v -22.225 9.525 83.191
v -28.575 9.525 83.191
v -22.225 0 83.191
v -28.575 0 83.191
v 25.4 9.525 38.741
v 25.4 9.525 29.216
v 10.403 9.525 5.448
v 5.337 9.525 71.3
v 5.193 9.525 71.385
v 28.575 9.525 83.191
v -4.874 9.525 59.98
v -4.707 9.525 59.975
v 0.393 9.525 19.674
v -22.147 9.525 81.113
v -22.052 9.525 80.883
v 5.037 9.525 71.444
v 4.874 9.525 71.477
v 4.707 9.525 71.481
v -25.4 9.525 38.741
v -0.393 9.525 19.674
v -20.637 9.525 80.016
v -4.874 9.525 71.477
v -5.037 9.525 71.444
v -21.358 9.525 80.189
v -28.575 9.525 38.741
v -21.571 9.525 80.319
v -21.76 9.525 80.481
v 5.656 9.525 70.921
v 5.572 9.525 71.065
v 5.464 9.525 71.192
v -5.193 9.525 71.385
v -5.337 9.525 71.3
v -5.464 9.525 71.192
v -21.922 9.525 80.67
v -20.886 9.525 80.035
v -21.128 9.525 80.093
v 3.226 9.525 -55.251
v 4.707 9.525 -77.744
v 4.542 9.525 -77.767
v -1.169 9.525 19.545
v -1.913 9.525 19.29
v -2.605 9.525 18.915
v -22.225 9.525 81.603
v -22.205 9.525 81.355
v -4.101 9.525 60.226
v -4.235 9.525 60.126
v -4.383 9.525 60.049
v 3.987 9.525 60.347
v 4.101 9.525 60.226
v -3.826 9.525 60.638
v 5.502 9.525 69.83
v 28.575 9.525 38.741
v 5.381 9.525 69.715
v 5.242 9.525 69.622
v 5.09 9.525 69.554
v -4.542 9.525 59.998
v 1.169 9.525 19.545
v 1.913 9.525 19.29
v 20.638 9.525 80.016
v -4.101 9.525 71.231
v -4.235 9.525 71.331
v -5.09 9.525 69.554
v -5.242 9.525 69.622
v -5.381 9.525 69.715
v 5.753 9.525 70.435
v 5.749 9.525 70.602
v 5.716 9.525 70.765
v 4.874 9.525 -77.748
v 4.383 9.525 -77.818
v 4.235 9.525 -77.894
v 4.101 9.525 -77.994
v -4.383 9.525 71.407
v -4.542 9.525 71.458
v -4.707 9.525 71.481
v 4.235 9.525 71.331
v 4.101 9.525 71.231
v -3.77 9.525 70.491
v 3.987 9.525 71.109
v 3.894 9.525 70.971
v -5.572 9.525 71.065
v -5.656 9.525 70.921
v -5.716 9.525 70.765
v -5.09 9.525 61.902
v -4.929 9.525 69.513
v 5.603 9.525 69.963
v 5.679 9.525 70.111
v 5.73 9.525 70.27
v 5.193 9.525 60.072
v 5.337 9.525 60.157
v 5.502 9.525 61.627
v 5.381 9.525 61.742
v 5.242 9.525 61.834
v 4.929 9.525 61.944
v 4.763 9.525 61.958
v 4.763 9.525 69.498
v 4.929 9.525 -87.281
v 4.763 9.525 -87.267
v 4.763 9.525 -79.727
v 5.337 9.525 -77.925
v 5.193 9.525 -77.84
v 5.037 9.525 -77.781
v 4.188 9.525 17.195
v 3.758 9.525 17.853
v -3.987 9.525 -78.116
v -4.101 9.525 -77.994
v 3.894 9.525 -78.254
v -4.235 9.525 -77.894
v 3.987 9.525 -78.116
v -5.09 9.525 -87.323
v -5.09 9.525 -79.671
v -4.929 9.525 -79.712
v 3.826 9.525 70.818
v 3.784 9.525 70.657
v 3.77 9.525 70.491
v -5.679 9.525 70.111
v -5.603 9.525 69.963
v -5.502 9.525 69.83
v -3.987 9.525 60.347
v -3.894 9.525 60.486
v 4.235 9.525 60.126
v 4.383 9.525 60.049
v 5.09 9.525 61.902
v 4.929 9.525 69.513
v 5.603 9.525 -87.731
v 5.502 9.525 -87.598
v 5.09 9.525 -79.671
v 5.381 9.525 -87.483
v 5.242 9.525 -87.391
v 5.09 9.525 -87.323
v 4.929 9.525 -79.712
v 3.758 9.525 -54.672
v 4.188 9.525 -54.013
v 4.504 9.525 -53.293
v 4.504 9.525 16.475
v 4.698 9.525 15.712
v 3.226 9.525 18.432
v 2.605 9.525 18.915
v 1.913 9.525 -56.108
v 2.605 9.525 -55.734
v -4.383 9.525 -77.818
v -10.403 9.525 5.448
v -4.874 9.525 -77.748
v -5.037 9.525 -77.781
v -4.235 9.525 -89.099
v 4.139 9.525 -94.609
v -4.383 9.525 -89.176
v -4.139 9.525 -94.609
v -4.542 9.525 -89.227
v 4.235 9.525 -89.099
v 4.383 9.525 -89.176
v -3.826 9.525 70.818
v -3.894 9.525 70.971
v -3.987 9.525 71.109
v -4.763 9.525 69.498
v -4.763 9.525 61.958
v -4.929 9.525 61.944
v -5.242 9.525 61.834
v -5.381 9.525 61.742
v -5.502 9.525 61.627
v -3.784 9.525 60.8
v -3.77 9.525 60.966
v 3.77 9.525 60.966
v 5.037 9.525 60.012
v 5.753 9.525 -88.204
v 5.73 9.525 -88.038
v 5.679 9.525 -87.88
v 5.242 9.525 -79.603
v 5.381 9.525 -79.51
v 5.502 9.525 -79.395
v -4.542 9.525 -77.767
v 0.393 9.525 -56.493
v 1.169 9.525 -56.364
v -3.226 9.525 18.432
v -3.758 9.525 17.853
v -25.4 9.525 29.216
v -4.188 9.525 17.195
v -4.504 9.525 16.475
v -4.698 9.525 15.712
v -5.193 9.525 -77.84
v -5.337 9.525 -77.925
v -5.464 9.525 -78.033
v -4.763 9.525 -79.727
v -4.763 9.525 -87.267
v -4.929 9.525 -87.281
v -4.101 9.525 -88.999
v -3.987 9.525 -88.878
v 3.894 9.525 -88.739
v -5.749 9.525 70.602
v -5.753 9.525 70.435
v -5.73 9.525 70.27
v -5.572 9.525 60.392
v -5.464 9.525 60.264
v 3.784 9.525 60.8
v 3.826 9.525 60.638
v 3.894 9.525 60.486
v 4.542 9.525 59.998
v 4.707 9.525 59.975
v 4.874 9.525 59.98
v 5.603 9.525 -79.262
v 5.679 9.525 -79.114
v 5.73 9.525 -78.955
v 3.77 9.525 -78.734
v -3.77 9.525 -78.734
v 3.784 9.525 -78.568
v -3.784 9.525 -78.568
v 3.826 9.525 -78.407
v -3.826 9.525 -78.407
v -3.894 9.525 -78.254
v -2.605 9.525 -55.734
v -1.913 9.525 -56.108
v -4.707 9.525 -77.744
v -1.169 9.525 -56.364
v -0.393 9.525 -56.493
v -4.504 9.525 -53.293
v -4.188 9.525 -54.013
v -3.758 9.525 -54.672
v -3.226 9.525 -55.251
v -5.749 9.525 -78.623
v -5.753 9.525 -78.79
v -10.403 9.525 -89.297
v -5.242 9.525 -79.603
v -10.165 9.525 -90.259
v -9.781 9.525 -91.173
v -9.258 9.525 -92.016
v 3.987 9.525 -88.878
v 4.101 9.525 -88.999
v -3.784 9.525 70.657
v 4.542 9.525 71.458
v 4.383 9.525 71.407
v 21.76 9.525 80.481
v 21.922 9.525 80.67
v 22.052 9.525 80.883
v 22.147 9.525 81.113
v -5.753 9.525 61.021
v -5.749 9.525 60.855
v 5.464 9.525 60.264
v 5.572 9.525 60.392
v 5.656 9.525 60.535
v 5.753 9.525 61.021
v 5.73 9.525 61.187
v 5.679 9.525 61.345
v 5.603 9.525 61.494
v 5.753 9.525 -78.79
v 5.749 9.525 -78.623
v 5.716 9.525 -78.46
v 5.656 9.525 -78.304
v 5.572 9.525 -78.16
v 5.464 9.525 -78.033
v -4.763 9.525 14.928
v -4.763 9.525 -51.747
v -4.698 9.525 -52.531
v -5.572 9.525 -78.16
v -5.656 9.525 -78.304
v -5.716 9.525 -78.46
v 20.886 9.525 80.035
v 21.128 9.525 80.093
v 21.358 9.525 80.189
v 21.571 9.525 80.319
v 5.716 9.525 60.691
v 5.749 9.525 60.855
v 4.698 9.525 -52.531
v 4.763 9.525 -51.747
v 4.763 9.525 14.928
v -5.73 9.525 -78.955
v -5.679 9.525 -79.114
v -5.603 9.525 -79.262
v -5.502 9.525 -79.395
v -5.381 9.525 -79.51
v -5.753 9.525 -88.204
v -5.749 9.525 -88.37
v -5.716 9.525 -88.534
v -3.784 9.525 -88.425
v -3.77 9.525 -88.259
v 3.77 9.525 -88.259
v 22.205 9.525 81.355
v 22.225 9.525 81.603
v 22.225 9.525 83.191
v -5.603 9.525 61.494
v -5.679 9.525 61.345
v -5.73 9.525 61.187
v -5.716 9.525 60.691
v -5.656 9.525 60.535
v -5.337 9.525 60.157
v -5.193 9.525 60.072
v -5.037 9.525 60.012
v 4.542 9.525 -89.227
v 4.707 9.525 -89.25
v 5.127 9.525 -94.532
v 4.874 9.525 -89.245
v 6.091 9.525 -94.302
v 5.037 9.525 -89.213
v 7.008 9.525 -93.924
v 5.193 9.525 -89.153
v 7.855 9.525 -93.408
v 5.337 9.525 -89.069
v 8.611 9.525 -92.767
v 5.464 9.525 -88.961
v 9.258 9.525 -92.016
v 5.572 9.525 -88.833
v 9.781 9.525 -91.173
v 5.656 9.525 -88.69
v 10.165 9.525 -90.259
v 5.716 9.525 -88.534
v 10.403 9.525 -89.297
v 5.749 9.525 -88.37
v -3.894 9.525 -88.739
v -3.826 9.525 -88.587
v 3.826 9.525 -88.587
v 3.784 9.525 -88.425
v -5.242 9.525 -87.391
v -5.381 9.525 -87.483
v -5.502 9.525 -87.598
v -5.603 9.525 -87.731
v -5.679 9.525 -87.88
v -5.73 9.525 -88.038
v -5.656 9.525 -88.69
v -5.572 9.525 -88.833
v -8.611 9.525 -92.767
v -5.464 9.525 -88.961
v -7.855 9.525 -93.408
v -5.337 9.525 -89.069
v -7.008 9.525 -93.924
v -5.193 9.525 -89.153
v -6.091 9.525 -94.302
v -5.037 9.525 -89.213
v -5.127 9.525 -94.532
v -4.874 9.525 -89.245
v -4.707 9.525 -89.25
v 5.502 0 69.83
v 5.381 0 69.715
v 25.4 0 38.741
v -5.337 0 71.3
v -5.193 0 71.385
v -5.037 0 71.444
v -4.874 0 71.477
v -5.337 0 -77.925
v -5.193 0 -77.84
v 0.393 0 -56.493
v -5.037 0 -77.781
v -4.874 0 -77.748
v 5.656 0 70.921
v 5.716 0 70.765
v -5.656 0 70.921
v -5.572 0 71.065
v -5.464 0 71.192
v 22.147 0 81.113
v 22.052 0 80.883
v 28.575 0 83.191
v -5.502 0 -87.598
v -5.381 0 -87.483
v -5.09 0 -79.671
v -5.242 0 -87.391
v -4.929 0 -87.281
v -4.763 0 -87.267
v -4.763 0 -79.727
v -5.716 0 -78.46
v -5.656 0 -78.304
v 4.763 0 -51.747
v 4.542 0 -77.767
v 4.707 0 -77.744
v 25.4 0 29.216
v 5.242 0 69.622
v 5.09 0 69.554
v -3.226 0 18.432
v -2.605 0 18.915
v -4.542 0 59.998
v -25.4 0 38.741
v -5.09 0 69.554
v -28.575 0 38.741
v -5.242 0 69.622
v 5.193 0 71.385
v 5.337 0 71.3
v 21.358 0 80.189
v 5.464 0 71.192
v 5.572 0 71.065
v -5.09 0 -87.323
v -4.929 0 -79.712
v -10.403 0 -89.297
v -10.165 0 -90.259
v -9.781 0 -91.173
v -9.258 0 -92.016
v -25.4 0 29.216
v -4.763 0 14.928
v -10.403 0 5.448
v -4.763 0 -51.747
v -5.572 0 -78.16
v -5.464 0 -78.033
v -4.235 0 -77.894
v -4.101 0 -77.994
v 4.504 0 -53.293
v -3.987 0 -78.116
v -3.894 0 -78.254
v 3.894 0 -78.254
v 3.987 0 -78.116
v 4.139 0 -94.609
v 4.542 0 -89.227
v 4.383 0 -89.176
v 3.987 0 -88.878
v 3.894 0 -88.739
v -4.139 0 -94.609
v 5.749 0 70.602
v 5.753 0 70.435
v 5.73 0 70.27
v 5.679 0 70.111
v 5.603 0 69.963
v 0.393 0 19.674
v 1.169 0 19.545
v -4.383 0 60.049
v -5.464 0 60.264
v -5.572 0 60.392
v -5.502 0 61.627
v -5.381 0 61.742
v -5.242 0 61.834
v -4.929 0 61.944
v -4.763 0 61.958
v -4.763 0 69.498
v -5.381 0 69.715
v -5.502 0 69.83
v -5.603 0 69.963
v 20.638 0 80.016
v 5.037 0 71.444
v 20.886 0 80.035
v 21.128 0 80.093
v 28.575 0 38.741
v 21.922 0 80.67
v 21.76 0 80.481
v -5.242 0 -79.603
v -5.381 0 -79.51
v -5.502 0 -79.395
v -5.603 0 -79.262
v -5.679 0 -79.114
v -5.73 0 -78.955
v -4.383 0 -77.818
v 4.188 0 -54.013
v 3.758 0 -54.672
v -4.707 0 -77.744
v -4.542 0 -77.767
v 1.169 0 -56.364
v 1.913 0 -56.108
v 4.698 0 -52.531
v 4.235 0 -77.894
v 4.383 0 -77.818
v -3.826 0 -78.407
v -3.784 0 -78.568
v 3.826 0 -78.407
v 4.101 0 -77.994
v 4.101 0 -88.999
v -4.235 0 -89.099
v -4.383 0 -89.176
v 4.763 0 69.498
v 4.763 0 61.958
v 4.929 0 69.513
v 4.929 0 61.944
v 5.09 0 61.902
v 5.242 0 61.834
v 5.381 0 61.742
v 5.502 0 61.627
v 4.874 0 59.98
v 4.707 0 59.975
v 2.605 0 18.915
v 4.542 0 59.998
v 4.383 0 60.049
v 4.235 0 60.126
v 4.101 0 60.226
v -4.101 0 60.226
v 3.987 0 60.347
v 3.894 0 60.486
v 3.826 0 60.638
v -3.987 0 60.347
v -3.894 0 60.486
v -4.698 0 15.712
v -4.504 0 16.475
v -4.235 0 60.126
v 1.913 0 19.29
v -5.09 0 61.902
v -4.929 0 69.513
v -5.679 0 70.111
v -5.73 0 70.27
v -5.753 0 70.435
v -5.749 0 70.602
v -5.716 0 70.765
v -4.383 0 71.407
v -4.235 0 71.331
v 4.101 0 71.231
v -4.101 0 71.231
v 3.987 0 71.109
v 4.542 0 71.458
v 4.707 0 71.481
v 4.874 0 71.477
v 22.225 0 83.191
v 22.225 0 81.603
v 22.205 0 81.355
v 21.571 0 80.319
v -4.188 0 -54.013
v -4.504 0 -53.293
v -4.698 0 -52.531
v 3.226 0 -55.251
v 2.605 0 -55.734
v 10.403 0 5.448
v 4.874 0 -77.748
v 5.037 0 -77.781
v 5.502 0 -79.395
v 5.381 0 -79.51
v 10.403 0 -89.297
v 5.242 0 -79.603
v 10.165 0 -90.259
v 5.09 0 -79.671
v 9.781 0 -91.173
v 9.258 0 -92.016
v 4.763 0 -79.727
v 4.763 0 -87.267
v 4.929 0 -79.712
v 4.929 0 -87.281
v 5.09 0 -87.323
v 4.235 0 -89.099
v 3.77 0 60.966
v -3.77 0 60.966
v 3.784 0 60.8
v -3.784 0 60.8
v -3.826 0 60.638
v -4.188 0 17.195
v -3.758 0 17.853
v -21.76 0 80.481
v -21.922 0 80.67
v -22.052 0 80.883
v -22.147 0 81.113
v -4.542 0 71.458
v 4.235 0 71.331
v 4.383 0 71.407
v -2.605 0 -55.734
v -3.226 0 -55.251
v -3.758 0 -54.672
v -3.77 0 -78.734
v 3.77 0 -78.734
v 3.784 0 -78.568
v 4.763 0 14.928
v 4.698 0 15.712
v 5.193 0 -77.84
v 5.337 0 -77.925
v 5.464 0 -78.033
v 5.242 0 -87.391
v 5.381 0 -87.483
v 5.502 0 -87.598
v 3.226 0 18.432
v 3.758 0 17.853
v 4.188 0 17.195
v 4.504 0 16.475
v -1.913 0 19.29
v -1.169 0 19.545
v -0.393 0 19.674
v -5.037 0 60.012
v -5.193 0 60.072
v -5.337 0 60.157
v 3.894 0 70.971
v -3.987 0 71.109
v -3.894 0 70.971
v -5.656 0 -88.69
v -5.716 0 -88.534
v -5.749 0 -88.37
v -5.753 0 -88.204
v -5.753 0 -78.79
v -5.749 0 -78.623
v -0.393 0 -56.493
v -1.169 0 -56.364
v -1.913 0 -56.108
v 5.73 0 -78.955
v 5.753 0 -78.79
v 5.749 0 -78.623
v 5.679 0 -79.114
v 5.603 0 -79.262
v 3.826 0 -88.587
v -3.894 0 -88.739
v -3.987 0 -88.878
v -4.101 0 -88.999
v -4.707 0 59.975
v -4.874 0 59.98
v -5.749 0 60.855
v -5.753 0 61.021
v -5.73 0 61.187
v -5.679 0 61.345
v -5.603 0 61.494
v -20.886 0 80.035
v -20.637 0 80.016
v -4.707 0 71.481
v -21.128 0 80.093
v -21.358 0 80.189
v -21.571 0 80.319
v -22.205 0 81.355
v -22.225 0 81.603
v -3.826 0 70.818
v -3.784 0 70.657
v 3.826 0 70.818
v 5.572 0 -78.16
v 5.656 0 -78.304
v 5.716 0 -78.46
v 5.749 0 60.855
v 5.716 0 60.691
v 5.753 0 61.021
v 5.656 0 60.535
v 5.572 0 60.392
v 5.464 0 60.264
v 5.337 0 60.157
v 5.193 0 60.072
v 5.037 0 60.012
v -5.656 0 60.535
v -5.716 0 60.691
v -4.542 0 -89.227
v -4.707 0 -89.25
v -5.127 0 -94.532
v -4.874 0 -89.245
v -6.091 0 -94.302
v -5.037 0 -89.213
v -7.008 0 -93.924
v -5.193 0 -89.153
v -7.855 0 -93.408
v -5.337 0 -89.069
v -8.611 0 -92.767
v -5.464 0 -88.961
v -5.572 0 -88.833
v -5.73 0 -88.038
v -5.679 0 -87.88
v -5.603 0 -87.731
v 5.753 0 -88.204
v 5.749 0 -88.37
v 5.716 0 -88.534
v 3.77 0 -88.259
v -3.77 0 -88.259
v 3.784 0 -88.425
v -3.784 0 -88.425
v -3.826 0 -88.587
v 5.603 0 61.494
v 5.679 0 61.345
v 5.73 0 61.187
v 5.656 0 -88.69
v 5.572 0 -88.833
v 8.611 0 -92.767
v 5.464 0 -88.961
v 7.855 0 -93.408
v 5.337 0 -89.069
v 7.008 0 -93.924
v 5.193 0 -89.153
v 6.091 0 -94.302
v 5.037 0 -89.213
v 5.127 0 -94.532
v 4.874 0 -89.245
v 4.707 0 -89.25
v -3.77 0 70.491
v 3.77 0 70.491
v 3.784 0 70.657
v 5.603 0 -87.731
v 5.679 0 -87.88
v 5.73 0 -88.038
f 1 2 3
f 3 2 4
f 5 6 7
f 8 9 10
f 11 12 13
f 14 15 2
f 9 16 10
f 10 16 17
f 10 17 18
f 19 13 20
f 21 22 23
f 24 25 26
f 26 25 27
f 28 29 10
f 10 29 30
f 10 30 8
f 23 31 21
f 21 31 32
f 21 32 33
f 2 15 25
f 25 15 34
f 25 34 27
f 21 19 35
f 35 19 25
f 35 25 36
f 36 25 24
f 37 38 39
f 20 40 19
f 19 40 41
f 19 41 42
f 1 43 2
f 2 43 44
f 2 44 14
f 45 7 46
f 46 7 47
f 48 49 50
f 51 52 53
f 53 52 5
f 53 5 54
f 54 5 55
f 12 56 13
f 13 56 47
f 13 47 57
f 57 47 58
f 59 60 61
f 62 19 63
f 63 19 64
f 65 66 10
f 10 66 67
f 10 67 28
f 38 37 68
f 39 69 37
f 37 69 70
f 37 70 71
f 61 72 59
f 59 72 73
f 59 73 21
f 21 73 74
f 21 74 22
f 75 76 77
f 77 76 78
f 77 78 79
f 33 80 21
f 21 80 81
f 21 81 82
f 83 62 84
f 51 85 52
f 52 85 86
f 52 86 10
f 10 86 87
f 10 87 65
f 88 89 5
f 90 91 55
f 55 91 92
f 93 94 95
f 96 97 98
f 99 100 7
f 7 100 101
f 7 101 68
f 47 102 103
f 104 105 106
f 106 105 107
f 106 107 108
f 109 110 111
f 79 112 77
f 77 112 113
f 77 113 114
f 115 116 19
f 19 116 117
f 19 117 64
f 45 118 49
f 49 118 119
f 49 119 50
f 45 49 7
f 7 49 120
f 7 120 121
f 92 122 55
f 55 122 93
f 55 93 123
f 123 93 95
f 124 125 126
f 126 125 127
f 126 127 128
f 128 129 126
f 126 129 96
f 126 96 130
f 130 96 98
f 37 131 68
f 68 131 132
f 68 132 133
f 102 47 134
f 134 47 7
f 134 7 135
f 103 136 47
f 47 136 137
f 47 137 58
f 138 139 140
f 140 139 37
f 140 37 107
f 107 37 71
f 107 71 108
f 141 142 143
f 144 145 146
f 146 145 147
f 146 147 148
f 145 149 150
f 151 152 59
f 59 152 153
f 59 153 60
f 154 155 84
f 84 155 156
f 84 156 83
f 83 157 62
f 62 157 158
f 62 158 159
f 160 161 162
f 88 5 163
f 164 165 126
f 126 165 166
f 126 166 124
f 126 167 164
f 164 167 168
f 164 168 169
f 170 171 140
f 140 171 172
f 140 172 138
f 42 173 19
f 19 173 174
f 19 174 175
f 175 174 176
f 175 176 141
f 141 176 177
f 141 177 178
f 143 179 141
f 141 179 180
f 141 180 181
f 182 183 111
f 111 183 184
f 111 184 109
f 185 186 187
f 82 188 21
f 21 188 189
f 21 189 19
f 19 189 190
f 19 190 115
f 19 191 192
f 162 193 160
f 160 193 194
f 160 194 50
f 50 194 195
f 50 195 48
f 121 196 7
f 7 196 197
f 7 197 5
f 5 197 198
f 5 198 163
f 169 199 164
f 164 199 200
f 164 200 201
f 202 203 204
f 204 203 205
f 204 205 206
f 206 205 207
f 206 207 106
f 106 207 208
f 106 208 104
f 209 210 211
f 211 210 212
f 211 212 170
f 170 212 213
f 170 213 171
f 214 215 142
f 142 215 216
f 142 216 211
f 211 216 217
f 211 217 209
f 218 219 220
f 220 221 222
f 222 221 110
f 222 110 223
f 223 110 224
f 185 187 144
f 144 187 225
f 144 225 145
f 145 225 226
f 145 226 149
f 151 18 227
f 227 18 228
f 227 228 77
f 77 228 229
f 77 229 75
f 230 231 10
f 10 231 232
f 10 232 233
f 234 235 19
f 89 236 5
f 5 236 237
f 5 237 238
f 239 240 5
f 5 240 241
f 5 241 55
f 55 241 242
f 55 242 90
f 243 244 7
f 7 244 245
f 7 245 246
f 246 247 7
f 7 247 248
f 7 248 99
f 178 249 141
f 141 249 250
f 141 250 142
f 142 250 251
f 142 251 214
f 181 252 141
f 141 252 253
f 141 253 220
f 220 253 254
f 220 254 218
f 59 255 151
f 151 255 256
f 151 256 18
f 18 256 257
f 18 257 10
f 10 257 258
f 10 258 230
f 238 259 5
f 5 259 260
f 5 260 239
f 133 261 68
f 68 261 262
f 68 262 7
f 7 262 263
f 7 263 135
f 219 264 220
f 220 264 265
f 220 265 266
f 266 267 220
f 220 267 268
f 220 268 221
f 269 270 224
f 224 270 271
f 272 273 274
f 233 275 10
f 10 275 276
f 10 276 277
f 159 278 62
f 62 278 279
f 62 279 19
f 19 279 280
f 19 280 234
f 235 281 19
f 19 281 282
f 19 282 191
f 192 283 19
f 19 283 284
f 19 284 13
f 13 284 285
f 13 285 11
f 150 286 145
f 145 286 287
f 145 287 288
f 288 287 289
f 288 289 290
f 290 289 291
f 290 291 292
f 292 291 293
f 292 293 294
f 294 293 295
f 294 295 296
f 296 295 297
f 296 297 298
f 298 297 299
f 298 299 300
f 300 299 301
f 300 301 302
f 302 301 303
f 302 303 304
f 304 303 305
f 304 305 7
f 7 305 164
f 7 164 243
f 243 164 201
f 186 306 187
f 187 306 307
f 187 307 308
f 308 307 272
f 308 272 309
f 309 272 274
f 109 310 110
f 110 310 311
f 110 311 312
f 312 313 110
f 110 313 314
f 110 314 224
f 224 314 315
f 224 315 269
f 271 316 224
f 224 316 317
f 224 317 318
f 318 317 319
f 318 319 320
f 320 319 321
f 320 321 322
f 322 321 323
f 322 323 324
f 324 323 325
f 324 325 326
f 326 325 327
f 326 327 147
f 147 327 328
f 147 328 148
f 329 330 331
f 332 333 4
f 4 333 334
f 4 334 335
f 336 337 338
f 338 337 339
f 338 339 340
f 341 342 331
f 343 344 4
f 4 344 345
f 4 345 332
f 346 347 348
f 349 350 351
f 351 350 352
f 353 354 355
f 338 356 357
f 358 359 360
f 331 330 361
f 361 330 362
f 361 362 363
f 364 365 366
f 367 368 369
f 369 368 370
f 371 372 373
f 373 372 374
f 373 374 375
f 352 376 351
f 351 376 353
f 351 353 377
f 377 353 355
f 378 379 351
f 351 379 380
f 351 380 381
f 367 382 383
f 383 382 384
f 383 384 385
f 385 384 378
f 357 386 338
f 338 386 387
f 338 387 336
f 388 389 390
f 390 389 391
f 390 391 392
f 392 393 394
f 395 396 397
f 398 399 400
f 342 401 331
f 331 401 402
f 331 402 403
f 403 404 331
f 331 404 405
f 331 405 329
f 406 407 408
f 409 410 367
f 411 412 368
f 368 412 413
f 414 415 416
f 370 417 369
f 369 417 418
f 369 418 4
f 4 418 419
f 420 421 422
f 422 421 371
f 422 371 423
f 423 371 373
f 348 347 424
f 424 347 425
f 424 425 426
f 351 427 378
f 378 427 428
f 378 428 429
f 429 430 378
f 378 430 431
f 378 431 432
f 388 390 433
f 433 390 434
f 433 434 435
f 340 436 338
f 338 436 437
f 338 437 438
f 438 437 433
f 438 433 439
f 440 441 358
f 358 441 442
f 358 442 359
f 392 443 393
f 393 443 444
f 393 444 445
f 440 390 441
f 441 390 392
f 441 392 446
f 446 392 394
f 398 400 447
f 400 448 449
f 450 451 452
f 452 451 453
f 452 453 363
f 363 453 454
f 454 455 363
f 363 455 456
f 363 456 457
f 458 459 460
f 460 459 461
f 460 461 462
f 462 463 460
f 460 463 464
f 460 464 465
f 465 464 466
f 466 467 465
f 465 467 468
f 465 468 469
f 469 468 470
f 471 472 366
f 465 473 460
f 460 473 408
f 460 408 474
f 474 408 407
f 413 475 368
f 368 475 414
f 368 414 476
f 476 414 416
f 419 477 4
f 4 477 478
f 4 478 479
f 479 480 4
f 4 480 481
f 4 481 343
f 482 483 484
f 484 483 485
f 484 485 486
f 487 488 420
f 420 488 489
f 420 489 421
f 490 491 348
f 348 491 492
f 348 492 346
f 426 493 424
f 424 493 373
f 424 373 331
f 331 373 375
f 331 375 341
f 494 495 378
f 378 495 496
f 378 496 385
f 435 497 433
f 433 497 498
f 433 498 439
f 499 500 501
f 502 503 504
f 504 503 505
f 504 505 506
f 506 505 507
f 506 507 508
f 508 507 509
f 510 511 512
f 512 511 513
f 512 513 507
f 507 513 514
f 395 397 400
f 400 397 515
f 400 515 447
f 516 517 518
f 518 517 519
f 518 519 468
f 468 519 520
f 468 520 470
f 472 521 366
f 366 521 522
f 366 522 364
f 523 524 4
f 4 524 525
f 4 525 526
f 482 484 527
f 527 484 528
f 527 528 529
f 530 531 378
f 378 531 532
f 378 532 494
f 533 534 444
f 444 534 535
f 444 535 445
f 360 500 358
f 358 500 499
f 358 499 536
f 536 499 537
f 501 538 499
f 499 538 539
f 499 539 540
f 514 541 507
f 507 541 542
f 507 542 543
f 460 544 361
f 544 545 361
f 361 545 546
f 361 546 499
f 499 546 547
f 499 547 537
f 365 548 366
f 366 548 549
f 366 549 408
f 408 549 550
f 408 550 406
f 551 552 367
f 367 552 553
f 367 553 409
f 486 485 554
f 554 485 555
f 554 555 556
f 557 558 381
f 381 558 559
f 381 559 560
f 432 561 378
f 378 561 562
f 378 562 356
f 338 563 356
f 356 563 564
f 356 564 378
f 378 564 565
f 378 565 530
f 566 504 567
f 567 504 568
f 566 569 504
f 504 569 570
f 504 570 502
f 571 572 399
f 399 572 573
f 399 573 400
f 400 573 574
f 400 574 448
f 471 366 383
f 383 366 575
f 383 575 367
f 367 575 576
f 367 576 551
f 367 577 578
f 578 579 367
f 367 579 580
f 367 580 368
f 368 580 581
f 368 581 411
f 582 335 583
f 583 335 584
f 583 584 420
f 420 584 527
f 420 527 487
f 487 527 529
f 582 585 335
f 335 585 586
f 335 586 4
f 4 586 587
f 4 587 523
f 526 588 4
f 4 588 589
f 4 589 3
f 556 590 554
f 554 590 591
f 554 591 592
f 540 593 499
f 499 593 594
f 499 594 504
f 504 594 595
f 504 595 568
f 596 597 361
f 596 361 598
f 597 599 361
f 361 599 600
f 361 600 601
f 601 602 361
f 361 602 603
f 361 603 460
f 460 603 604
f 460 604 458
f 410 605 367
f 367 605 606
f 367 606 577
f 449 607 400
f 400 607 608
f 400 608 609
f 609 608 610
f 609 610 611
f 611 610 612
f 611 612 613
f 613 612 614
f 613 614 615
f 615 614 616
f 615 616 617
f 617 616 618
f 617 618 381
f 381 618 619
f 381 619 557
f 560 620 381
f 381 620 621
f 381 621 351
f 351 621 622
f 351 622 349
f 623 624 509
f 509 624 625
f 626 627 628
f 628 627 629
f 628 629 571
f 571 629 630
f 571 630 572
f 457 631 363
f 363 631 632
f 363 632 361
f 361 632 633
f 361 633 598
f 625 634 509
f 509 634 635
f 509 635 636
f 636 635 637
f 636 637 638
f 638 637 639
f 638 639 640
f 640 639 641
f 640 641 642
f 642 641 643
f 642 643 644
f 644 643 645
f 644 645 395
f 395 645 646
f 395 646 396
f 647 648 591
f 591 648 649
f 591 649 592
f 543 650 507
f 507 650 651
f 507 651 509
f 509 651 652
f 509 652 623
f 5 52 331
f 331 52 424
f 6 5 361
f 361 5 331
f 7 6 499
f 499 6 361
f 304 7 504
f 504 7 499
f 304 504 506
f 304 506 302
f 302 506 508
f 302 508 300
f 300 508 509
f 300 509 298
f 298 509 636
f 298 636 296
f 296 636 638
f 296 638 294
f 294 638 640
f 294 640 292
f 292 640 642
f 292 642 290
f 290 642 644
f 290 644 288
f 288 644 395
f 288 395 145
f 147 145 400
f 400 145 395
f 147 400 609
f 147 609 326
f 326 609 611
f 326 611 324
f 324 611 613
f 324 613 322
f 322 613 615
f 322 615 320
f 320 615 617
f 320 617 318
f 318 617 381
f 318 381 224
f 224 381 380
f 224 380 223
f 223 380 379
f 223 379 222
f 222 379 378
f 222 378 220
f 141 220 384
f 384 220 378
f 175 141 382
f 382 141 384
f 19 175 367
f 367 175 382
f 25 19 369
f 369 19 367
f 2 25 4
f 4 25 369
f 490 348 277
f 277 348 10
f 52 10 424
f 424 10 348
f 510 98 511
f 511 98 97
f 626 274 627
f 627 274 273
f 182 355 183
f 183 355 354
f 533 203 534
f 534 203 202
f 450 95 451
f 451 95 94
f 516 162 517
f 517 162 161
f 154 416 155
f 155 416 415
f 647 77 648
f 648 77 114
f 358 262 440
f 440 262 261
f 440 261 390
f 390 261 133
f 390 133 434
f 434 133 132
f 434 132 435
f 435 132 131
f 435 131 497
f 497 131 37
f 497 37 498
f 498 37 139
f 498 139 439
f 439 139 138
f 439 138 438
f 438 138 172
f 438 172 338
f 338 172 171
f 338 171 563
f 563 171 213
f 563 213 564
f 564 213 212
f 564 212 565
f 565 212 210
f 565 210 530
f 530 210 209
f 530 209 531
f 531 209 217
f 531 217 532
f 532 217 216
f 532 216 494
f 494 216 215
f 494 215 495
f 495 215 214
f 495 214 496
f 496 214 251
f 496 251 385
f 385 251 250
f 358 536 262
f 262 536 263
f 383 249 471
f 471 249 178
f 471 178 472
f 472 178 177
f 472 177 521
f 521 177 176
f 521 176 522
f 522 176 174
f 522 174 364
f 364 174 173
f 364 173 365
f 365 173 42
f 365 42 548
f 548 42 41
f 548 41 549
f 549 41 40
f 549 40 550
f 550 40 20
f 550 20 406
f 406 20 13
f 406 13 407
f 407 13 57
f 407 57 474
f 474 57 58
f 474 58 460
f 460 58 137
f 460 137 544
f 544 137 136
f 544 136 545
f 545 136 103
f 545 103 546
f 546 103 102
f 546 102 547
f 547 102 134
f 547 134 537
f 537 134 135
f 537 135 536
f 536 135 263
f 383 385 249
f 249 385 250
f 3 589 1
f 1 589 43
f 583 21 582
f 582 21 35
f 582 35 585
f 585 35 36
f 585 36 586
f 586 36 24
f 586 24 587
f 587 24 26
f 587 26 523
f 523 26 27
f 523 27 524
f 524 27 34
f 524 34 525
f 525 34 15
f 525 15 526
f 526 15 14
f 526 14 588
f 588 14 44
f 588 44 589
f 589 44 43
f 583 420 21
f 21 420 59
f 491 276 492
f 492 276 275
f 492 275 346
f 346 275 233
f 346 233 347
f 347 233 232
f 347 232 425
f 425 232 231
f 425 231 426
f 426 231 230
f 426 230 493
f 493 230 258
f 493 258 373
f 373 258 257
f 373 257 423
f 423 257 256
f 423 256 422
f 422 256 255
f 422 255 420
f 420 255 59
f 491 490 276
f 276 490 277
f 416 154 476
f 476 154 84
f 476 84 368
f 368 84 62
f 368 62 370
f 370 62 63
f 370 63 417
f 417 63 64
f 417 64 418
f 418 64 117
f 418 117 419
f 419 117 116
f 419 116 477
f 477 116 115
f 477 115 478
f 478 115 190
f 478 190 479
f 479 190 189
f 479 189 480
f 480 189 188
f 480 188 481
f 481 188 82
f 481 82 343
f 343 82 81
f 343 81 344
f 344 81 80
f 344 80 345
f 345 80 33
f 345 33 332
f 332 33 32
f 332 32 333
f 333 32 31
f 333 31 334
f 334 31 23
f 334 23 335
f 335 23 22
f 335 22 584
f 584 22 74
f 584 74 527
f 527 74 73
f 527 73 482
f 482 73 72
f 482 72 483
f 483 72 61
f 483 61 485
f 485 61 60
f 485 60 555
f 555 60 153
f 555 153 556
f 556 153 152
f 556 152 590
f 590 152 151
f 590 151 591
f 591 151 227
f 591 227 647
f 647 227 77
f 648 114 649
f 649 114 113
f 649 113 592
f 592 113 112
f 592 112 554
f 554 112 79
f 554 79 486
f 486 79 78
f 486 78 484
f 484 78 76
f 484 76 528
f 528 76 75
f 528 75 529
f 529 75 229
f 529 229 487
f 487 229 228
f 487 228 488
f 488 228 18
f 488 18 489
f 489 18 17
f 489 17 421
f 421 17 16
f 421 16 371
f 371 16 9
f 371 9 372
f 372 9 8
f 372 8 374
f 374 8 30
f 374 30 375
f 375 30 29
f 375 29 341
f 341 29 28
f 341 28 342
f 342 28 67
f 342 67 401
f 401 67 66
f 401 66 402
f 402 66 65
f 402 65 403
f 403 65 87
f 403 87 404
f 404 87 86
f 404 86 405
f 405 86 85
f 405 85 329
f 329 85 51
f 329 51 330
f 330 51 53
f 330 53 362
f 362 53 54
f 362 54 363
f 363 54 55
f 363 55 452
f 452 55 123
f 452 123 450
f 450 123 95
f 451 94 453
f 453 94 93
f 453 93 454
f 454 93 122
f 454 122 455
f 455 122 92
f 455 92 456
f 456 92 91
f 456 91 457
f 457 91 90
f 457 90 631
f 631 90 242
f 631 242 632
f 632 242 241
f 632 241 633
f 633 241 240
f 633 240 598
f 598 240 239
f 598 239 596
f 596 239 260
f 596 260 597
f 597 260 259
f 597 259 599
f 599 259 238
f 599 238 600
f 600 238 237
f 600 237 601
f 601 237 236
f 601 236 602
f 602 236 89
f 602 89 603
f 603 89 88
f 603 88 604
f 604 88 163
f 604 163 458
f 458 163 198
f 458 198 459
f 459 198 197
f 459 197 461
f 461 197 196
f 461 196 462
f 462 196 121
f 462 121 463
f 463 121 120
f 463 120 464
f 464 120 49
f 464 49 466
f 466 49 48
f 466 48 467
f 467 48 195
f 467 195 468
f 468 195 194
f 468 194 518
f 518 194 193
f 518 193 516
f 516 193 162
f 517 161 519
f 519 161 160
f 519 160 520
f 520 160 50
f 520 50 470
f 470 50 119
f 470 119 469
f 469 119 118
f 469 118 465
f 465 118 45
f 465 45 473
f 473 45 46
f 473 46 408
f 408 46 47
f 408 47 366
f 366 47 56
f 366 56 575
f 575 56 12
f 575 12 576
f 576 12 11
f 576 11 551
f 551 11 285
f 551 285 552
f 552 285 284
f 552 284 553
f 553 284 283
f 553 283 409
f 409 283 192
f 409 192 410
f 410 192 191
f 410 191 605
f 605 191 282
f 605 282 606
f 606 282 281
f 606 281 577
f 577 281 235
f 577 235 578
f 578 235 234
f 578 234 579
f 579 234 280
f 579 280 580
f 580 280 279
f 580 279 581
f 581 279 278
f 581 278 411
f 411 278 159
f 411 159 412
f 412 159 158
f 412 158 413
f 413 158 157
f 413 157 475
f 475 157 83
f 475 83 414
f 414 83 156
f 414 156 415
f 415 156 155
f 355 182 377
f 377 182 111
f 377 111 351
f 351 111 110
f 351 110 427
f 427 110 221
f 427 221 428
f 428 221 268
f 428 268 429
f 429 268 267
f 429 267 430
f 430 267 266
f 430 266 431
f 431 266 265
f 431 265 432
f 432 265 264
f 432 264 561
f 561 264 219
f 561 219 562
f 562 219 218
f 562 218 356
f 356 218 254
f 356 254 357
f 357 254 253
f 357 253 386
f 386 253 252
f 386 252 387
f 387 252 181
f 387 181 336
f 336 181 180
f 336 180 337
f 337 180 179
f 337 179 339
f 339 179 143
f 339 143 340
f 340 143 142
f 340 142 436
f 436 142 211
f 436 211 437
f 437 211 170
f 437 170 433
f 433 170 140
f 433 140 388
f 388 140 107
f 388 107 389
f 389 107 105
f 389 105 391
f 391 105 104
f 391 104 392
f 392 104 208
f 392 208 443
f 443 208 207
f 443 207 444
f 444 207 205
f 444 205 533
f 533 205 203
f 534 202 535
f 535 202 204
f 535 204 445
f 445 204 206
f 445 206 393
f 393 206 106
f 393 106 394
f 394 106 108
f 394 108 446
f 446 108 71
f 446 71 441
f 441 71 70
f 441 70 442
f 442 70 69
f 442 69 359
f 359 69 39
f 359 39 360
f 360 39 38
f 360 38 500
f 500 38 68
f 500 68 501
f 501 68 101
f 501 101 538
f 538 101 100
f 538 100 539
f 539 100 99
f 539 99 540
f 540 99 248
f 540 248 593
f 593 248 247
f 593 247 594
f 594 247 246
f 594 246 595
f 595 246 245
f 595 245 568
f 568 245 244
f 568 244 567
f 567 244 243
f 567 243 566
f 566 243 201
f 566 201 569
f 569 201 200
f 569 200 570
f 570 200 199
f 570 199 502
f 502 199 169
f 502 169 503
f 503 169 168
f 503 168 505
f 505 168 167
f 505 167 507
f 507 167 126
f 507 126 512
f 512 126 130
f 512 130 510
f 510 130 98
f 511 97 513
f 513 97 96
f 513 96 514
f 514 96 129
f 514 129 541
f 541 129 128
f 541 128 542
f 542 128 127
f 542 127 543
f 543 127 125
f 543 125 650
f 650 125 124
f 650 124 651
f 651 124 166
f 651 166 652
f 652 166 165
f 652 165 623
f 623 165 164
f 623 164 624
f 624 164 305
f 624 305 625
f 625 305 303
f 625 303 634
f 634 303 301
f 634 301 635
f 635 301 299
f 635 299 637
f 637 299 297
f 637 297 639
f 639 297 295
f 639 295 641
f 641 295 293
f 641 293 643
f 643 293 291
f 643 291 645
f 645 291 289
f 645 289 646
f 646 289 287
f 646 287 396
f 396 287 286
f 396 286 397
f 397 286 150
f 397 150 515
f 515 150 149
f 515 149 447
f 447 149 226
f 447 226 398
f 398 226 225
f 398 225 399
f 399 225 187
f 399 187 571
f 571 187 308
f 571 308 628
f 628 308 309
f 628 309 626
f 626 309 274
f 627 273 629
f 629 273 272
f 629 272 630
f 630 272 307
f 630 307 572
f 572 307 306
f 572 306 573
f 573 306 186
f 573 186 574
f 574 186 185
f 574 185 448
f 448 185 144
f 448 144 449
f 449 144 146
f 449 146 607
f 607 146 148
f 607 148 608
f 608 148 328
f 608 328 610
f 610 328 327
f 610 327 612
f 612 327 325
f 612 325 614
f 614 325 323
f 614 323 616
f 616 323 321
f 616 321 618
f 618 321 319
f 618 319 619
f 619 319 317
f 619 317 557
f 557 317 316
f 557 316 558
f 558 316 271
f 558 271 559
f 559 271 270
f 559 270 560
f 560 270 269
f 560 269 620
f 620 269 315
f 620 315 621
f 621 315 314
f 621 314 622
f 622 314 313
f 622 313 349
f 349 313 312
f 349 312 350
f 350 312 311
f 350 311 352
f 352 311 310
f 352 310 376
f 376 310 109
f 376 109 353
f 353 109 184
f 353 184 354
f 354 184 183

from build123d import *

# Parameters (mm, degrees)
SKETCH1_W                       = 9.525
SKETCH1_H                       = 9.525
BOSS_EXTRUDE1_DEPTH             = 9.525
CUT_EXTRUDE2_DEPTH              = 10.525
CUT_EXTRUDE3_DEPTH              = 10.525
F_5_64_0_07813_DIAMETER_HOLE1_D = 1.984502


with BuildPart() as part:
    # Sketch1 → Boss-Extrude1 (new body)
    with BuildSketch(Plane(origin=(0, 0, 0), x_dir=(1, 0, 0), z_dir=(0, 1, 0))):
        with BuildLine():
            Line((-4.138568073, 94.60926025), (4.138568073, 94.60926025))
            ThreePointArc((4.138568073, 94.60926025), (8.245532024, 93.102332324), (10.40323655, 89.29677115))
            Line((10.40323655, 89.29677115), (10.40323655, -5.448440201))
            Line((10.40323655, -5.448440201), (25.4, -29.21573975))
            Line((25.4, -29.21573975), (25.4, -38.74073975))
            Line((25.4, -38.74073975), (28.575, -38.74073975))
            Line((28.575, -38.74073975), (28.575, -83.19073975))
            Line((28.575, -83.19073975), (-28.575, -83.19073975))
            Line((-28.575, -83.19073975), (-28.575, -38.74073975))
            Line((-28.575, -38.74073975), (-25.4, -38.74073975))
            Line((-25.4, -38.74073975), (-25.4, -29.21573975))
            Line((-25.4, -29.21573975), (-10.40323655, -5.448440201))
            Line((-10.40323655, -5.448440201), (-10.40323655, 89.29677115))
            ThreePointArc((-10.40323655, 89.29677115), (-8.245532024, 93.102332324), (-4.138568073, 94.60926025))
        make_face()
        with Locations((0, -65.72823975)):
            Rectangle(SKETCH1_W, SKETCH1_H, mode=Mode.SUBTRACT)
        with Locations((0, 83.49676025)):
            Rectangle(SKETCH1_W, SKETCH1_H, mode=Mode.SUBTRACT)
    extrude(amount=BOSS_EXTRUDE1_DEPTH)

    # Sketch4 → Cut-Extrude2 (cut, through all)
    with BuildSketch(Plane(origin=(0, 9.525, 0), x_dir=(1, 0, 0), z_dir=(0, 1, 0))):
        with BuildLine():
            Line((4.7625, 51.74676025), (4.7625, -14.92823975))
            ThreePointArc((4.7625, -14.92823975), (0, -19.69073975), (-4.7625, -14.92823975))
            Line((-4.7625, -14.92823975), (-4.7625, 51.74676025))
            ThreePointArc((-4.7625, 51.74676025), (0, 56.50926025), (4.7625, 51.74676025))
        make_face()
    extrude(amount=-CUT_EXTRUDE2_DEPTH, mode=Mode.SUBTRACT)

    # Sketch5 → Cut-Extrude3 (cut, through all)
    with BuildSketch(Plane(origin=(0, 9.525, 0), x_dir=(1, 0, 0), z_dir=(0, 1, 0))):
        with BuildLine():
            Line((-22.225, -83.19073975), (22.225, -83.19073975))
            Line((22.225, -83.19073975), (22.225, -81.60323975))
            ThreePointArc((22.225, -81.60323975), (21.760032015, -80.480707734), (20.6375, -80.01573975))
            Line((20.6375, -80.01573975), (-20.6375, -80.01573975))
            ThreePointArc((-20.6375, -80.01573975), (-21.760032015, -80.480707734), (-22.225, -81.60323975))
            Line((-22.225, -81.60323975), (-22.225, -83.19073975))
        make_face()
    extrude(amount=-CUT_EXTRUDE3_DEPTH, mode=Mode.SUBTRACT)

    # 5/64 (0.07813) Diameter Hole1 (through all)
    with Locations(Plane(origin=(0, 9.525, 0), x_dir=(1, 0, 0), z_dir=(0, 1, 0))):
        with Locations((-4.7625, 88.25926025), (4.7625, 88.25926025), (4.7625, 78.73426025), (-4.7625, 78.73426025), (-4.7625, -60.96573975), (4.7625, -60.96573975), (4.7625, -70.49073975), (-4.7625, -70.49073975)):
            Hole(F_5_64_0_07813_DIAMETER_HOLE1_D / 2)


solid = part.part
